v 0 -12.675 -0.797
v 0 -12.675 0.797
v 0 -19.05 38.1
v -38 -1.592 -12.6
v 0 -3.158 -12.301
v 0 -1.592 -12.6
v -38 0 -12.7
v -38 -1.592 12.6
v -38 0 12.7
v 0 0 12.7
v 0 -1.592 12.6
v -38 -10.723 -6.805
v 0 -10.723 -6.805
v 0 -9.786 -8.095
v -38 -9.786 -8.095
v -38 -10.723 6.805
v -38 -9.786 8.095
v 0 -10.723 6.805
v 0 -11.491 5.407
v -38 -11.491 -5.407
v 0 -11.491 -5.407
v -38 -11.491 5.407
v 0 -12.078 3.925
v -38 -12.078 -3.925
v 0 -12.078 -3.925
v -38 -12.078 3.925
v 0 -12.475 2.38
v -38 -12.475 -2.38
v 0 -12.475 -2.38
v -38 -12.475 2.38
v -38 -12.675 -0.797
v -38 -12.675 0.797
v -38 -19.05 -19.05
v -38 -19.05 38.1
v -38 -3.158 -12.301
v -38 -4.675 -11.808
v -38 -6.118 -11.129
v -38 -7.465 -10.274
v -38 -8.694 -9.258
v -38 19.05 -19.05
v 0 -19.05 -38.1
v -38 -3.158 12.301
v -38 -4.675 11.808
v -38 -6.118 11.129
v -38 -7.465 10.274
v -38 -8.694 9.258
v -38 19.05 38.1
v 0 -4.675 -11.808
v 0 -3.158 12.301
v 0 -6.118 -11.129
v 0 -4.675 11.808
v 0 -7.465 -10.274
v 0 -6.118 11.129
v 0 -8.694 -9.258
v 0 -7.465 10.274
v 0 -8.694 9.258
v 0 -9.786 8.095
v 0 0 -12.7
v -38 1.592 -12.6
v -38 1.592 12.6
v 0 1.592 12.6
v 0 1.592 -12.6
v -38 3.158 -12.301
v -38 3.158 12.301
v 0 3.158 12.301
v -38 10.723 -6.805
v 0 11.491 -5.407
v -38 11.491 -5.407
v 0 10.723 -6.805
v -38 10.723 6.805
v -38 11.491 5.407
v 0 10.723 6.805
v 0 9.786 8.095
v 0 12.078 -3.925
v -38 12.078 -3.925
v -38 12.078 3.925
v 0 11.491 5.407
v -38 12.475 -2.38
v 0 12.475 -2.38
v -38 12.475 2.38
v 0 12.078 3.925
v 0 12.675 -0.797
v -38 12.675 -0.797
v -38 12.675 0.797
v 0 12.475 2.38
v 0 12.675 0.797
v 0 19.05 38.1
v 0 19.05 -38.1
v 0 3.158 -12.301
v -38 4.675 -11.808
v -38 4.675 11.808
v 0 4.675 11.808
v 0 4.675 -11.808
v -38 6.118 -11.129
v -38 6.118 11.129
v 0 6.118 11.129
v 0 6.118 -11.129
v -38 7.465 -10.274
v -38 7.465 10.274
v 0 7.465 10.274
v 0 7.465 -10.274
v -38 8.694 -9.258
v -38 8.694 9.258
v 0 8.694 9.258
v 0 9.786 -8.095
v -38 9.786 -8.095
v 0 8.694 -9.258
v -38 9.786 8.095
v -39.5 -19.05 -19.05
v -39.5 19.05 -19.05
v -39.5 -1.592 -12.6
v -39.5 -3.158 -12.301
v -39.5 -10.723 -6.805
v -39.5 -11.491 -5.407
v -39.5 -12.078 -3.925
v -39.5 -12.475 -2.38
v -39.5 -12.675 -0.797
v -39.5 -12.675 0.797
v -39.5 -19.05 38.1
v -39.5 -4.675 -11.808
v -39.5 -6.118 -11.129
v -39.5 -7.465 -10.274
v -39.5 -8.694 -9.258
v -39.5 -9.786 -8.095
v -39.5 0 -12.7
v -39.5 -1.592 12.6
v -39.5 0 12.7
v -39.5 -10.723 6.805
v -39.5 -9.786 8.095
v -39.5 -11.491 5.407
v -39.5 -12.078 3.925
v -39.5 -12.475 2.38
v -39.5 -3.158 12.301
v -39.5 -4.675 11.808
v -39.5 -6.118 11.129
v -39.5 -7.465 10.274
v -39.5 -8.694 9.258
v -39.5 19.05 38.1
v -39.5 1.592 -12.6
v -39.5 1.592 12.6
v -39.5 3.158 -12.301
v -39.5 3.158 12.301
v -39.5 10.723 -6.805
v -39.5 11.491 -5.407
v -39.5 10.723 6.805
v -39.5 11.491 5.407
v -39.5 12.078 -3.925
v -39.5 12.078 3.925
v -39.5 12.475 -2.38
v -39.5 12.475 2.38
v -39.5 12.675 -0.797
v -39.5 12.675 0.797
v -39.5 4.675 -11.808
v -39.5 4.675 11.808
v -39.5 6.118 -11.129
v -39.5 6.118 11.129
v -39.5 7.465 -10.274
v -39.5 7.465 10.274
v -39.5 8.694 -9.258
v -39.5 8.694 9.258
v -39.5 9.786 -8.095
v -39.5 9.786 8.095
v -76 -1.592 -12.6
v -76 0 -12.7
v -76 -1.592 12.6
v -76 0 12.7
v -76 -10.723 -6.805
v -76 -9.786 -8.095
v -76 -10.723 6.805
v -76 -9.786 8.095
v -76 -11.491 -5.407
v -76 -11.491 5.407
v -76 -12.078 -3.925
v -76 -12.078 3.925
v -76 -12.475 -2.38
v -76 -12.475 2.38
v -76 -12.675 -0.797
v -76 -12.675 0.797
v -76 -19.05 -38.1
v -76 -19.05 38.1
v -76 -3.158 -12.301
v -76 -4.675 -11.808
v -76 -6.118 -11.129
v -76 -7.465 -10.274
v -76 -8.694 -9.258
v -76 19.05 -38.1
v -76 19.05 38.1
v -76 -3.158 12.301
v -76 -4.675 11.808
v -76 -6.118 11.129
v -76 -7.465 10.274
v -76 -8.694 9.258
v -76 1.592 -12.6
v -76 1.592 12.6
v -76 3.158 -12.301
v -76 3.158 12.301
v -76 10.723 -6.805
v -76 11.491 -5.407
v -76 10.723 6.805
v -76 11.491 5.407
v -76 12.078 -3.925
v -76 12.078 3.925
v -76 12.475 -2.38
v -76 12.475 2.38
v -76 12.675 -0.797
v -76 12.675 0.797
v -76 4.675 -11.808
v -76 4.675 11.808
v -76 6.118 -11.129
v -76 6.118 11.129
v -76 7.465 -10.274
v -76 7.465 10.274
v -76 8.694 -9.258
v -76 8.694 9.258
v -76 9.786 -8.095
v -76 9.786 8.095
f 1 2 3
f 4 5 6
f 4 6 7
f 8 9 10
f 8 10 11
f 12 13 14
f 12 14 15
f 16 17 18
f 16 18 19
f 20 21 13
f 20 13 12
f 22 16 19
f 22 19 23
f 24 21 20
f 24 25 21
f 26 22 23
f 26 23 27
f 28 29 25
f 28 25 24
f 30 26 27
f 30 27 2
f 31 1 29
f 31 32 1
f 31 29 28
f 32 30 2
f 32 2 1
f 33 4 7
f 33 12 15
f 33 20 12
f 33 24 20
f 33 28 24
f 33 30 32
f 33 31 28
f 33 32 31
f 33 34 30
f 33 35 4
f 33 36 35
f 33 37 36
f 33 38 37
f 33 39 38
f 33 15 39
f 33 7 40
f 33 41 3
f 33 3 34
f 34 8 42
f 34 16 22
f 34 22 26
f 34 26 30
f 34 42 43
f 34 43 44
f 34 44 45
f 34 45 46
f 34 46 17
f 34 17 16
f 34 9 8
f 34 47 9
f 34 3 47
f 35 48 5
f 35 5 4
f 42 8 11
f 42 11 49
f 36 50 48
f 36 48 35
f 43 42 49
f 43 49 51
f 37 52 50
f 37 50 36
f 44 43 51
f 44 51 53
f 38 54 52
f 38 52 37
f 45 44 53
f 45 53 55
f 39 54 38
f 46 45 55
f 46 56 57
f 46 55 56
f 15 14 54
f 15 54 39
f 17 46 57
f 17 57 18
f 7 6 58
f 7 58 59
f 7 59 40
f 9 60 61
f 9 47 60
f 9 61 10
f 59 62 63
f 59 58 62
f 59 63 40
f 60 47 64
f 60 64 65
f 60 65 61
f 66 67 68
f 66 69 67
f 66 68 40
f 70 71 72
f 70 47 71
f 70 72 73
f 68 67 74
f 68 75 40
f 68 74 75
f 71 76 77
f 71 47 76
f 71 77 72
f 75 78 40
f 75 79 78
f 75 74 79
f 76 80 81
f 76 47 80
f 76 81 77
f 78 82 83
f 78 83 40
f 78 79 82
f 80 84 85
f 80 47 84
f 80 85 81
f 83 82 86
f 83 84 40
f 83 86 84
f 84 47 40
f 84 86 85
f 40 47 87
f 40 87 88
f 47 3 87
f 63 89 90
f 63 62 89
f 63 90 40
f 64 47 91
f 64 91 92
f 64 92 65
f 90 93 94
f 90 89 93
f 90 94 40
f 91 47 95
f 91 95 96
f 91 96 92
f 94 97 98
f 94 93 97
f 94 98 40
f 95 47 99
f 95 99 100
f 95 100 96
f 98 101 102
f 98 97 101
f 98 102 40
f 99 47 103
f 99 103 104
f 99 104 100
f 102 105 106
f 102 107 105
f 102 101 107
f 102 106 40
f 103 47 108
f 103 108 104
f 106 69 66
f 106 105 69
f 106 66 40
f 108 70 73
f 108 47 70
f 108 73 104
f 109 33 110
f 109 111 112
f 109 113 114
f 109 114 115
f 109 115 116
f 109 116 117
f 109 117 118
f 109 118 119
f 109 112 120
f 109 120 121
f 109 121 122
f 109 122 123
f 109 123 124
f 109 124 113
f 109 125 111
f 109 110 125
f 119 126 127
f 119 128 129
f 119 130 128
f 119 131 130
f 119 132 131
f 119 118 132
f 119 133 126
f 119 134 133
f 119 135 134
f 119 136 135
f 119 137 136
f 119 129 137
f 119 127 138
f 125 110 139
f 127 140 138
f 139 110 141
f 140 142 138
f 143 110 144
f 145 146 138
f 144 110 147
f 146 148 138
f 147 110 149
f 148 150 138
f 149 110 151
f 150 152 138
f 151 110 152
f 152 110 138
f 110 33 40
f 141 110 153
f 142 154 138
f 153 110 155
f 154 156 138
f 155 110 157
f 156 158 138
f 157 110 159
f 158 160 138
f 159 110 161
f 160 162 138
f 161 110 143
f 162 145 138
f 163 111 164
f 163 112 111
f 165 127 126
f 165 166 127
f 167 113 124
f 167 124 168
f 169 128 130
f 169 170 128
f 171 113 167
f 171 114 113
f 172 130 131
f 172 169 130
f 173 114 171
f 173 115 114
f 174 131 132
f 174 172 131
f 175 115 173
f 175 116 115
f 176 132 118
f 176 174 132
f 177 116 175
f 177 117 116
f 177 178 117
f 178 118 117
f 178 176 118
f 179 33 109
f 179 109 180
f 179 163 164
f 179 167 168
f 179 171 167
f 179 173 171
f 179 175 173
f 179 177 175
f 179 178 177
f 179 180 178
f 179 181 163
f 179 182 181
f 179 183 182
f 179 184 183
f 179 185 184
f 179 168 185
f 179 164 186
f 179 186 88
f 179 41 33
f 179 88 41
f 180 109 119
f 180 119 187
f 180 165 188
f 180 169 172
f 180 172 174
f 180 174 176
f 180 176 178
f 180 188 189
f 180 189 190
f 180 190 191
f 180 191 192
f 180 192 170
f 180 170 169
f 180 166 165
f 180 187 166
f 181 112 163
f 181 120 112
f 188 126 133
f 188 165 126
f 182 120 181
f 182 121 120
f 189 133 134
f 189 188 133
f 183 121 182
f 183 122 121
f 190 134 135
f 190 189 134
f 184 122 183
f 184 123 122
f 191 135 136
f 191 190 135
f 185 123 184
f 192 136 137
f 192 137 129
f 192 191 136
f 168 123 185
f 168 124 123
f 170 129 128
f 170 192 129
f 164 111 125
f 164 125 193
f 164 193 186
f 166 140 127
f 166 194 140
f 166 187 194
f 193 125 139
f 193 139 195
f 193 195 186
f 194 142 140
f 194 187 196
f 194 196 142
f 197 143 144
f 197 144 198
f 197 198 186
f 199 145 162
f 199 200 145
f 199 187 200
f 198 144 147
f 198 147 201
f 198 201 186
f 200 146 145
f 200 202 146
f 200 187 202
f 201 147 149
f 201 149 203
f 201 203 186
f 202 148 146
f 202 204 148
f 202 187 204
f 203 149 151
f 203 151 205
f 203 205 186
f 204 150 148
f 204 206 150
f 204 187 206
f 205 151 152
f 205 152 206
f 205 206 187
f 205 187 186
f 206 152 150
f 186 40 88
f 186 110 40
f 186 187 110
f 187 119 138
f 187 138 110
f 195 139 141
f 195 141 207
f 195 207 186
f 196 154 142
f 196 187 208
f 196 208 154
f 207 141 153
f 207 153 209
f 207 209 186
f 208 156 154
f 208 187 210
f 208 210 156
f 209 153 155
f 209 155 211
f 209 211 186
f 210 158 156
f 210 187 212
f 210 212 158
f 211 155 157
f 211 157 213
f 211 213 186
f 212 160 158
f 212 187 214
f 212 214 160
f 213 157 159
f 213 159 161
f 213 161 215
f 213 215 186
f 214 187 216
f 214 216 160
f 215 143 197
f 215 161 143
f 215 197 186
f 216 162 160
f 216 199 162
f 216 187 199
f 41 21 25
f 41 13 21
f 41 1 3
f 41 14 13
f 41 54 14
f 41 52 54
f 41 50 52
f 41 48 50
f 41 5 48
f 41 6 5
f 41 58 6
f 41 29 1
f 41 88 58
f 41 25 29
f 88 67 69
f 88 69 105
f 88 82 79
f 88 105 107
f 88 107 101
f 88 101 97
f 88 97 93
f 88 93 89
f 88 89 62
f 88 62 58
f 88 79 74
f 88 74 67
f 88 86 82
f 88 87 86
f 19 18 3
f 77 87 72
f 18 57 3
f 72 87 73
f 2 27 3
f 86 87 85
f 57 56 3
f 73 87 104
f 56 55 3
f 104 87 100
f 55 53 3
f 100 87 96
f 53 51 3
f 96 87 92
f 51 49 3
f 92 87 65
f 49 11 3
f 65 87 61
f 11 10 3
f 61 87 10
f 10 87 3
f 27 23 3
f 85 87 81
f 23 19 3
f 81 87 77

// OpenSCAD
include <../../parameters.scad>
draft = true;

module tube_cutter(draft = true){

    coupling_width = coupling_width_666_1004;
    height=coupling_width;

    depth=main_tube_outer_diameter*3;
    
    difference(){

        translate([-depth/2, -depth/4,0])
              cube([depth,depth/2,2*height]);

        //tubes
        translate([0,0,- global_clearance/2])
                cylinder(h=2*height + global_clearance,d = main_tube_outer_diameter, $fn= draft ? 50 : 200);

        //cut
        translate([-depth/4, -depth/4,height])
              cube([depth,depth/2,1.5]);

                        
    }
}
rotate([0,-90,0])
tube_cutter(draft);
